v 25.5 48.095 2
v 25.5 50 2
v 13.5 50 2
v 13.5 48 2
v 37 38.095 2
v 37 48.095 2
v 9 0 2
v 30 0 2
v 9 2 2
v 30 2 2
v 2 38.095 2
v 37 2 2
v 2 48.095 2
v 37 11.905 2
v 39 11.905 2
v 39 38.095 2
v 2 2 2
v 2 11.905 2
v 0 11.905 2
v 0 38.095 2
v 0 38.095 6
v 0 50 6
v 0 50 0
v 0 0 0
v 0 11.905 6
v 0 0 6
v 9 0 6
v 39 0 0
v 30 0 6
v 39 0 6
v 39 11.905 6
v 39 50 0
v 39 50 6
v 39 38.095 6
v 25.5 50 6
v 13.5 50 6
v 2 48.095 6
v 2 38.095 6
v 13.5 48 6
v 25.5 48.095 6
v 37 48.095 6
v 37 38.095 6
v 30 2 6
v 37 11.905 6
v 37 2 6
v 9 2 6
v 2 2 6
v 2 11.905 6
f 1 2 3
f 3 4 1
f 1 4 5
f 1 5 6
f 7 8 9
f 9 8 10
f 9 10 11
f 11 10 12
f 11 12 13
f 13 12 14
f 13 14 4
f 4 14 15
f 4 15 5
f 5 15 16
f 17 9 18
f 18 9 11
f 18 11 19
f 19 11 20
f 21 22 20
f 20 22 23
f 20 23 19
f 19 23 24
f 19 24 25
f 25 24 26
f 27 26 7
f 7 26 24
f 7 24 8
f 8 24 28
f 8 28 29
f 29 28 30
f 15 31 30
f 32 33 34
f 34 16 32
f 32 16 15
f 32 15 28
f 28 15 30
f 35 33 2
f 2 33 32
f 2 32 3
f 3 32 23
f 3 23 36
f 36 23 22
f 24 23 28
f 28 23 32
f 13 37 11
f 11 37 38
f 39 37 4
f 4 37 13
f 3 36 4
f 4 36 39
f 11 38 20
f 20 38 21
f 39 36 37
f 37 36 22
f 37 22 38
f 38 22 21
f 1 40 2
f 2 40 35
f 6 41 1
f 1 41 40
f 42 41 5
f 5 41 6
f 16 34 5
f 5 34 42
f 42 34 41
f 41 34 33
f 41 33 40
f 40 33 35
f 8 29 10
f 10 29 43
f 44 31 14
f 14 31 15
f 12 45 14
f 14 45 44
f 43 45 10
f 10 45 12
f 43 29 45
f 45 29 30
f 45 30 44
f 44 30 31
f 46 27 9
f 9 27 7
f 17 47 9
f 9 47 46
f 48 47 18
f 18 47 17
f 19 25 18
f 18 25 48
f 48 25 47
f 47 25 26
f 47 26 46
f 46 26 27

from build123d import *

# Parameters (mm, degrees)
SKETCH1_W           = 39
SKETCH1_H           = 50
BOSS_EXTRUDE1_DEPTH = 2
BOSS_EXTRUDE2_DEPTH = 6


with BuildPart() as part:
    # Sketch1 → Boss-Extrude1 (new body)
    with BuildSketch(Plane.XY):
        with Locations((19.5, 25)):
            Rectangle(SKETCH1_W, SKETCH1_H)
    extrude(amount=BOSS_EXTRUDE1_DEPTH)

    # Sketch1<4> → Boss-Extrude2 (add)
    with BuildSketch(Plane.XY):
        Polygon((13.5, 50), (0, 50), (0, 38.094718221), (2, 38.094718221), (2, 48.094718221), (13.5, 48), align=None)
        Polygon((39, 50), (25.5, 50), (25.5, 48.094718221), (37, 48.094718221), (37, 38.094718221), (39, 38.094718221), align=None)
        Polygon((2, 11.905281779), (0, 11.905281779), (0, 0), (9, 0), (9, 2), (2, 2), align=None)
        Polygon((39, 0), (39, 11.905281779), (37, 11.905281779), (37, 2), (30, 2), (30, 0), align=None)
    extrude(amount=BOSS_EXTRUDE2_DEPTH)


solid = part.part
